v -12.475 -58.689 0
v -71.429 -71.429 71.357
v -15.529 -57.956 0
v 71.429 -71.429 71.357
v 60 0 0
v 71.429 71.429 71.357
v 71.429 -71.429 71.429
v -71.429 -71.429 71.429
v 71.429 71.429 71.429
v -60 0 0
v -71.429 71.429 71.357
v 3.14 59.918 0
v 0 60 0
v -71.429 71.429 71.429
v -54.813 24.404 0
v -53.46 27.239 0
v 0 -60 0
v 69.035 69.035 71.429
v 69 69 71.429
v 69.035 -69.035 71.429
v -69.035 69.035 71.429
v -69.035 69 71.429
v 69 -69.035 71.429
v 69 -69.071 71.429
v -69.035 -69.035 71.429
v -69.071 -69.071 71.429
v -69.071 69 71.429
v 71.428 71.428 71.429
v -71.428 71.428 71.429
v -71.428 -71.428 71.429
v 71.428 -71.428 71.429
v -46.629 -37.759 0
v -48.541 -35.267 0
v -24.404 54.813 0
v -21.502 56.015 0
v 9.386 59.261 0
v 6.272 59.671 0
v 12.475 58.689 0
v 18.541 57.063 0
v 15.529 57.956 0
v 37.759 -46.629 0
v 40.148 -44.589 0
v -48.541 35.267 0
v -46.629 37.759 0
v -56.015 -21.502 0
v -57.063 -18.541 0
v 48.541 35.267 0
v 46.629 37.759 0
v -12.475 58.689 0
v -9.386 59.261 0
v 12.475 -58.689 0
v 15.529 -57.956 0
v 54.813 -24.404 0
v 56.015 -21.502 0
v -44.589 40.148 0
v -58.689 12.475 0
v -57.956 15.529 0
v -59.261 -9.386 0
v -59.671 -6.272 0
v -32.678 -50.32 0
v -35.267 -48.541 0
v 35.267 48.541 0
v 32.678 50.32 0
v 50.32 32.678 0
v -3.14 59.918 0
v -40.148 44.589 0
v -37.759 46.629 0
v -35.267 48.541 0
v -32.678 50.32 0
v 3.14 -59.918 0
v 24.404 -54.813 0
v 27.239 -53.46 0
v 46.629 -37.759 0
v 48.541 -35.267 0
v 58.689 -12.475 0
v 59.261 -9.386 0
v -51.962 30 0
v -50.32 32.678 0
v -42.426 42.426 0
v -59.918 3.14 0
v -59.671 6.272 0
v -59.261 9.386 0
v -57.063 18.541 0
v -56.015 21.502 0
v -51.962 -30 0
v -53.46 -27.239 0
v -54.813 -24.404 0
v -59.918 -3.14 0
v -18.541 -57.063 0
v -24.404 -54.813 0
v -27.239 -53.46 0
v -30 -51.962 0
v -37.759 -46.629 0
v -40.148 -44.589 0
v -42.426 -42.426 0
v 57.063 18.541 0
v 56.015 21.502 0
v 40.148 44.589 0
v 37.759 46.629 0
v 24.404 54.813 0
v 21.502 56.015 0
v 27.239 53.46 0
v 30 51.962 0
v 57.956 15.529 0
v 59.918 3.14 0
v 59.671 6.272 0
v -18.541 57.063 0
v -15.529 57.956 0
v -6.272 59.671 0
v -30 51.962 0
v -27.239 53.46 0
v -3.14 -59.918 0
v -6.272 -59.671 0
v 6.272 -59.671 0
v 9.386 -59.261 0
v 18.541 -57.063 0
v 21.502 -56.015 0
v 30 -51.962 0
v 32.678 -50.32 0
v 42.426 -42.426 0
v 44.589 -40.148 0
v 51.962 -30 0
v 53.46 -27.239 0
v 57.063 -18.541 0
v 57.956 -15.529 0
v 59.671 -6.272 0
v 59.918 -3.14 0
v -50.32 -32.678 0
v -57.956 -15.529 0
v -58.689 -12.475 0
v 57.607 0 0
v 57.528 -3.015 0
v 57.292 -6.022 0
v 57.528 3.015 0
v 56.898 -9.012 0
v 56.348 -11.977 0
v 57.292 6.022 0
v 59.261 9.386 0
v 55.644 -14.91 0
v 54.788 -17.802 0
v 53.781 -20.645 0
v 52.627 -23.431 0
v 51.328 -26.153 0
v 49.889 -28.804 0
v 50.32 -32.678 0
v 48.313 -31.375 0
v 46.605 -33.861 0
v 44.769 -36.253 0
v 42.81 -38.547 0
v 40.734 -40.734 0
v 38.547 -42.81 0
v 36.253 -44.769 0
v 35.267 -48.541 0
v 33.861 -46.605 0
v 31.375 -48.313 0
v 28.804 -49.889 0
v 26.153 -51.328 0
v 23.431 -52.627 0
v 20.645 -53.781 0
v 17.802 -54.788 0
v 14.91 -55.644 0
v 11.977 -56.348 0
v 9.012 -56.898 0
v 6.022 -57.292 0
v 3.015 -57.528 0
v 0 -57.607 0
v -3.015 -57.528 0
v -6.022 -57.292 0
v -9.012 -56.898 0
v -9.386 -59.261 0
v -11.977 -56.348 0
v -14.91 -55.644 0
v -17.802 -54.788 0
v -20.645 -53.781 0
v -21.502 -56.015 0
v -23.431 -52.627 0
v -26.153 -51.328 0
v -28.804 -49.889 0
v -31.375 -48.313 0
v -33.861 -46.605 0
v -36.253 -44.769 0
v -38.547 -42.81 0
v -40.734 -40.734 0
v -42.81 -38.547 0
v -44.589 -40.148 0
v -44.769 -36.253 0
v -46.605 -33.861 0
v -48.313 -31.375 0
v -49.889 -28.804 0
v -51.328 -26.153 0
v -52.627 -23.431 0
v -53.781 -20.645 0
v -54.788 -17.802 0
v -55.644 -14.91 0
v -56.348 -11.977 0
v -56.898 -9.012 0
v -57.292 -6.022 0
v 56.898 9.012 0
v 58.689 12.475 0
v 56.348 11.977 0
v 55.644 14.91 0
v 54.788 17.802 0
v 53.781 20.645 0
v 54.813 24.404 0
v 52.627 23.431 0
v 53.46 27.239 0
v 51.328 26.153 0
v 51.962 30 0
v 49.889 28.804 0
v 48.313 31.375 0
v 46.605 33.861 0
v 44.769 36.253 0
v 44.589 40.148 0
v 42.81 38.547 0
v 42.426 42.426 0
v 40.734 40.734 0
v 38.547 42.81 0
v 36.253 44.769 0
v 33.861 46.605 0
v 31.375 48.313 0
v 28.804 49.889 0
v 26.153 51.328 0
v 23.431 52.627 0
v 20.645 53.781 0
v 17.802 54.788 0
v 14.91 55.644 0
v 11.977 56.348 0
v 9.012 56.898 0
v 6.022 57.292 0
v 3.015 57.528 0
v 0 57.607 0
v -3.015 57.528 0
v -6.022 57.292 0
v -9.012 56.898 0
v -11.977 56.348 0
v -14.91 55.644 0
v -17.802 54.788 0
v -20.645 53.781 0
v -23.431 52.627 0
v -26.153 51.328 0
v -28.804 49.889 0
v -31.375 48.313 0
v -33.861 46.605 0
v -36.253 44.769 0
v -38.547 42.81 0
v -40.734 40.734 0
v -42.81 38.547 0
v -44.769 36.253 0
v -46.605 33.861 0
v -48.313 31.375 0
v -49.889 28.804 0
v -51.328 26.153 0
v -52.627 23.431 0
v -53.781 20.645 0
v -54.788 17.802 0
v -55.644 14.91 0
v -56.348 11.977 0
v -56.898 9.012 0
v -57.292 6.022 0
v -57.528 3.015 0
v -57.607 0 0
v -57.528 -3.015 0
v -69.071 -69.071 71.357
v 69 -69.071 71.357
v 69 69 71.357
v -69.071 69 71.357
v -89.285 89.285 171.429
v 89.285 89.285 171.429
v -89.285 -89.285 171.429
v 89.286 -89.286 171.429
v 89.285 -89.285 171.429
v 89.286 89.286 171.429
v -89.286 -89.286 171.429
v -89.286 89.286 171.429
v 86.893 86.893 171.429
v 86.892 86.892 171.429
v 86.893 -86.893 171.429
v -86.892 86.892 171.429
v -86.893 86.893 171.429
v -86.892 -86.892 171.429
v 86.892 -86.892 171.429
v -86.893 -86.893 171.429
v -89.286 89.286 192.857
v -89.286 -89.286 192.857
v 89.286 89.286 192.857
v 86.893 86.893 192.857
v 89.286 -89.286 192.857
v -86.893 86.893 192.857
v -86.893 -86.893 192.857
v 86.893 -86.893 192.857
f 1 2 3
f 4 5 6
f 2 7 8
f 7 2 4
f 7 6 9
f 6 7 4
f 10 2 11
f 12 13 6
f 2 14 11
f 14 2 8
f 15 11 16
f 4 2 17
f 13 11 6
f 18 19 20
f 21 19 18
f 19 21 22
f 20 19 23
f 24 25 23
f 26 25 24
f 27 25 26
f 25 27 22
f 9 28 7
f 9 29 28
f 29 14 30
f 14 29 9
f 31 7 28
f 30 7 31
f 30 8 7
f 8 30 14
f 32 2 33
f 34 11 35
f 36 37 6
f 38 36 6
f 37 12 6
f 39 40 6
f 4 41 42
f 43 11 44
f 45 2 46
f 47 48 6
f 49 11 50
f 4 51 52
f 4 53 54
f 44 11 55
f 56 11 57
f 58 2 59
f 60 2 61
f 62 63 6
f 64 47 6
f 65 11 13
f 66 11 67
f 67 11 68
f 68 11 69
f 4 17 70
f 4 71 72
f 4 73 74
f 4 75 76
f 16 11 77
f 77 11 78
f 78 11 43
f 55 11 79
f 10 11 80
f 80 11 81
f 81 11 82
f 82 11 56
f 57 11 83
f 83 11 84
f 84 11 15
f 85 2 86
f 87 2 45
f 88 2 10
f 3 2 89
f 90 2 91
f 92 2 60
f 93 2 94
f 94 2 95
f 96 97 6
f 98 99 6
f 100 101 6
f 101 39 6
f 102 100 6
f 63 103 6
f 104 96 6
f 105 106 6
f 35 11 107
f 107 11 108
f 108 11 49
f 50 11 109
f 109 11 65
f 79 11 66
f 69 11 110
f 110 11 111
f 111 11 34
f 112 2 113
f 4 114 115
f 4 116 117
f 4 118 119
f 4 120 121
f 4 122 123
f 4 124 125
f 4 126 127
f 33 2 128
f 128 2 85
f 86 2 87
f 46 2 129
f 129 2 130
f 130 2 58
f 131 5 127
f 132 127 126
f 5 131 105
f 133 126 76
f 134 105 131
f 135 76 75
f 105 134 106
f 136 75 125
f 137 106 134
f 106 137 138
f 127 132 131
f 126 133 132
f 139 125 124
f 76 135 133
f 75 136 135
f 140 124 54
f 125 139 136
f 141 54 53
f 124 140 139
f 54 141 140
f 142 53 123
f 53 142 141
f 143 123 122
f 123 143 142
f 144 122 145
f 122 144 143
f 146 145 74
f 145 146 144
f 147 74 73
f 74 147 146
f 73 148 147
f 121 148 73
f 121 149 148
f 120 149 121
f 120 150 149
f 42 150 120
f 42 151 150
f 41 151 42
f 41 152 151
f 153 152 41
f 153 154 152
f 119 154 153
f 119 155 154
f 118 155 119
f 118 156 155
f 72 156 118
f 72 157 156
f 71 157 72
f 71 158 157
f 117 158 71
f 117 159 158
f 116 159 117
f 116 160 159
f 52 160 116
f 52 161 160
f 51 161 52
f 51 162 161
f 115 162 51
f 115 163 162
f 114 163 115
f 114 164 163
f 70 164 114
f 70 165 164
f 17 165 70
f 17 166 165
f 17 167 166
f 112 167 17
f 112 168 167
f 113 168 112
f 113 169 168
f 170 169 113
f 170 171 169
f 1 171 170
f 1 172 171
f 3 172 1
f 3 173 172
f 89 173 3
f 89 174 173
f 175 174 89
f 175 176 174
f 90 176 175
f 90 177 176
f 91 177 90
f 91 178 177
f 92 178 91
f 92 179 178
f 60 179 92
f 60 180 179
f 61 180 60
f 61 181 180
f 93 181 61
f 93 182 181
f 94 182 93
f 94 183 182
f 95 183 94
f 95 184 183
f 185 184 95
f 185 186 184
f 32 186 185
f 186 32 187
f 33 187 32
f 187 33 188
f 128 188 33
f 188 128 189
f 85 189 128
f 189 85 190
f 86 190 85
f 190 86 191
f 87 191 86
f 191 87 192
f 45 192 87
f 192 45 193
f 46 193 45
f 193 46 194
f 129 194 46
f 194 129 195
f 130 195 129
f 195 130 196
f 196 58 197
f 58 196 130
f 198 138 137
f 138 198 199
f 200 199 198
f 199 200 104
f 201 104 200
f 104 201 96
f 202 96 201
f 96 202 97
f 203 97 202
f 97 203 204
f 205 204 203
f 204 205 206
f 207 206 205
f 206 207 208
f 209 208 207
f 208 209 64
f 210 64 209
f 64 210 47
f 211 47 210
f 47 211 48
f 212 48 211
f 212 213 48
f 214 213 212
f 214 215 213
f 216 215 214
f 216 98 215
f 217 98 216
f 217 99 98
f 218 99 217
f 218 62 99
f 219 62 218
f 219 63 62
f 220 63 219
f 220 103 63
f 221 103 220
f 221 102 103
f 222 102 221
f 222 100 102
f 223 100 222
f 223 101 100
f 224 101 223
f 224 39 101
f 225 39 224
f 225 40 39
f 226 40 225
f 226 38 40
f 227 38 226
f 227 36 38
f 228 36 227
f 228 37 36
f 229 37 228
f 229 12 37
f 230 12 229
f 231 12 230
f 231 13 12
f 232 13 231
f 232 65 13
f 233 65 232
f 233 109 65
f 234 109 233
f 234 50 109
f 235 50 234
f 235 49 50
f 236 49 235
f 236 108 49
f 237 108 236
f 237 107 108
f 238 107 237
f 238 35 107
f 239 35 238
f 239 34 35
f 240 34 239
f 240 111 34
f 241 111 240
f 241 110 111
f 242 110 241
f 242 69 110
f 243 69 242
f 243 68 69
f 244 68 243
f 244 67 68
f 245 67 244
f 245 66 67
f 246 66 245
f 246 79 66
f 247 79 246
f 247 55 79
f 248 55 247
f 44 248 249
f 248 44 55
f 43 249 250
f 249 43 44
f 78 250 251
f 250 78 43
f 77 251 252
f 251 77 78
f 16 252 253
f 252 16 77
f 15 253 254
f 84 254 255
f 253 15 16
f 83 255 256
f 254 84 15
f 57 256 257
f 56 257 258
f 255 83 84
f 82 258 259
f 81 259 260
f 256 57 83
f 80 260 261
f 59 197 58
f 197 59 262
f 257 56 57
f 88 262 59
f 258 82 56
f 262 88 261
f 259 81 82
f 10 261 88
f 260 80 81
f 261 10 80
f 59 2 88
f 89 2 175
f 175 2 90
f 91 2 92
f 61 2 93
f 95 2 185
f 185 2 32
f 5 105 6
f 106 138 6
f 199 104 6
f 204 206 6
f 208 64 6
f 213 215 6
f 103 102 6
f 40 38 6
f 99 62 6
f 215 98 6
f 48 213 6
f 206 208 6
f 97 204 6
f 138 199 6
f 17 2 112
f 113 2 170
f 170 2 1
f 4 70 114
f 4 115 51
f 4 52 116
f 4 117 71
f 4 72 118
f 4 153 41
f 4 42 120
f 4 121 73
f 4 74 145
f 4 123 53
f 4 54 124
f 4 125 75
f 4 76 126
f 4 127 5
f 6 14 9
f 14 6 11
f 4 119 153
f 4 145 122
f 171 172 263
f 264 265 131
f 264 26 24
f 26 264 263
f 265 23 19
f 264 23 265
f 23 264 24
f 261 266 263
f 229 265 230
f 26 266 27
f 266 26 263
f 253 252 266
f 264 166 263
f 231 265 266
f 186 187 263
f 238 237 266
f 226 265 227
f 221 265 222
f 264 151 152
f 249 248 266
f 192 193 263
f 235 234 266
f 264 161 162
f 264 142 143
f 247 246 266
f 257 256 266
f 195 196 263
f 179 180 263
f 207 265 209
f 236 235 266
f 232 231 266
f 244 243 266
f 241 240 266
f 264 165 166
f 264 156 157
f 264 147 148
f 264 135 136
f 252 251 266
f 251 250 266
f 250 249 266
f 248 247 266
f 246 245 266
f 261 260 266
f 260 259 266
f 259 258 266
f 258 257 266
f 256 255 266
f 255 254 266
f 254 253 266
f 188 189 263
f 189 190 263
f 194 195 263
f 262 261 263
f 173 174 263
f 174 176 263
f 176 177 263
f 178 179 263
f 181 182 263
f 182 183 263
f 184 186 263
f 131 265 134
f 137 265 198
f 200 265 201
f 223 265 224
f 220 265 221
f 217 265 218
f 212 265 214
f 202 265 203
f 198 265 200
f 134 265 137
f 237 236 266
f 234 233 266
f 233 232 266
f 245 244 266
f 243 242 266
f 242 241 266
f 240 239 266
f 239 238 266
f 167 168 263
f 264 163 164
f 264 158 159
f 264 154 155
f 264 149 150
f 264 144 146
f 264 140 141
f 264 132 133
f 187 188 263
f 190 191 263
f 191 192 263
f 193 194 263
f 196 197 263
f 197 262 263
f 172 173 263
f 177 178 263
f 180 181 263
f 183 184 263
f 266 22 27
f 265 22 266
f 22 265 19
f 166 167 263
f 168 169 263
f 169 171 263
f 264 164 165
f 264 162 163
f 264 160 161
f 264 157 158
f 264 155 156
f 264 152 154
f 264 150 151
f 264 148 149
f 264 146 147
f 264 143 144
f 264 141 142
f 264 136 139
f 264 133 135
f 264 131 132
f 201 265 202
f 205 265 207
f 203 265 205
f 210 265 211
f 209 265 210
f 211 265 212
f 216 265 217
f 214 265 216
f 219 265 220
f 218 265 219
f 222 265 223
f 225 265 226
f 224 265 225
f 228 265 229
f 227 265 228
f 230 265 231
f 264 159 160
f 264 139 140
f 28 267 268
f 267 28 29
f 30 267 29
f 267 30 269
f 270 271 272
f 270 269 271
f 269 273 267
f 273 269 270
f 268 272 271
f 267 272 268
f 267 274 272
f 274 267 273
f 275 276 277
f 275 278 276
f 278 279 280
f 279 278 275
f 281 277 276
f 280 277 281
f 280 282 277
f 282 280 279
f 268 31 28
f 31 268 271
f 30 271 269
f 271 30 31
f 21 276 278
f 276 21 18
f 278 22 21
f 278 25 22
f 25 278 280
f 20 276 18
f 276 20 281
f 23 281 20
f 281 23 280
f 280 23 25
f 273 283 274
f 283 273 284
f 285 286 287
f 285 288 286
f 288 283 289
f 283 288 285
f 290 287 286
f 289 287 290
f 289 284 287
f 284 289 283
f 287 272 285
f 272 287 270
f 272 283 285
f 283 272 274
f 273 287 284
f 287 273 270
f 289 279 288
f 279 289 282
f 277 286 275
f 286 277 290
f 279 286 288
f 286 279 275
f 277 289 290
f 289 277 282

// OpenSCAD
$fn=120;

//transición circulo-cuadrado
scale(1/14)
difference(){
hull(){
cylinder(d=1680,h=1);
translate([-1000,-1000,999])cube([2000,2000,1]);
}
hull(){
cylinder(d=1613,h=1);
translate([-967,-967,999])cube([1933,1933,1]);
}
}

//transición cuadrado-cuadrado
scale(1/14)rotate([0,0,45])
difference(){
translate([0,0,1000])
cylinder(d1=2000*1.4142,d2=2500*1.4142,h=1400,$fn=4);
translate([0,0,1000])
cylinder(d1=1933*1.4142,d2=2433*1.4142,h=1400,$fn=4);
}

//cubo
scale(1/14)
difference(){
translate([-1250,-1250,2400])cube([2500,2500,300]);
translate([-1216.5,-1216.5,2400])cube([2433,2433,300]);
}
